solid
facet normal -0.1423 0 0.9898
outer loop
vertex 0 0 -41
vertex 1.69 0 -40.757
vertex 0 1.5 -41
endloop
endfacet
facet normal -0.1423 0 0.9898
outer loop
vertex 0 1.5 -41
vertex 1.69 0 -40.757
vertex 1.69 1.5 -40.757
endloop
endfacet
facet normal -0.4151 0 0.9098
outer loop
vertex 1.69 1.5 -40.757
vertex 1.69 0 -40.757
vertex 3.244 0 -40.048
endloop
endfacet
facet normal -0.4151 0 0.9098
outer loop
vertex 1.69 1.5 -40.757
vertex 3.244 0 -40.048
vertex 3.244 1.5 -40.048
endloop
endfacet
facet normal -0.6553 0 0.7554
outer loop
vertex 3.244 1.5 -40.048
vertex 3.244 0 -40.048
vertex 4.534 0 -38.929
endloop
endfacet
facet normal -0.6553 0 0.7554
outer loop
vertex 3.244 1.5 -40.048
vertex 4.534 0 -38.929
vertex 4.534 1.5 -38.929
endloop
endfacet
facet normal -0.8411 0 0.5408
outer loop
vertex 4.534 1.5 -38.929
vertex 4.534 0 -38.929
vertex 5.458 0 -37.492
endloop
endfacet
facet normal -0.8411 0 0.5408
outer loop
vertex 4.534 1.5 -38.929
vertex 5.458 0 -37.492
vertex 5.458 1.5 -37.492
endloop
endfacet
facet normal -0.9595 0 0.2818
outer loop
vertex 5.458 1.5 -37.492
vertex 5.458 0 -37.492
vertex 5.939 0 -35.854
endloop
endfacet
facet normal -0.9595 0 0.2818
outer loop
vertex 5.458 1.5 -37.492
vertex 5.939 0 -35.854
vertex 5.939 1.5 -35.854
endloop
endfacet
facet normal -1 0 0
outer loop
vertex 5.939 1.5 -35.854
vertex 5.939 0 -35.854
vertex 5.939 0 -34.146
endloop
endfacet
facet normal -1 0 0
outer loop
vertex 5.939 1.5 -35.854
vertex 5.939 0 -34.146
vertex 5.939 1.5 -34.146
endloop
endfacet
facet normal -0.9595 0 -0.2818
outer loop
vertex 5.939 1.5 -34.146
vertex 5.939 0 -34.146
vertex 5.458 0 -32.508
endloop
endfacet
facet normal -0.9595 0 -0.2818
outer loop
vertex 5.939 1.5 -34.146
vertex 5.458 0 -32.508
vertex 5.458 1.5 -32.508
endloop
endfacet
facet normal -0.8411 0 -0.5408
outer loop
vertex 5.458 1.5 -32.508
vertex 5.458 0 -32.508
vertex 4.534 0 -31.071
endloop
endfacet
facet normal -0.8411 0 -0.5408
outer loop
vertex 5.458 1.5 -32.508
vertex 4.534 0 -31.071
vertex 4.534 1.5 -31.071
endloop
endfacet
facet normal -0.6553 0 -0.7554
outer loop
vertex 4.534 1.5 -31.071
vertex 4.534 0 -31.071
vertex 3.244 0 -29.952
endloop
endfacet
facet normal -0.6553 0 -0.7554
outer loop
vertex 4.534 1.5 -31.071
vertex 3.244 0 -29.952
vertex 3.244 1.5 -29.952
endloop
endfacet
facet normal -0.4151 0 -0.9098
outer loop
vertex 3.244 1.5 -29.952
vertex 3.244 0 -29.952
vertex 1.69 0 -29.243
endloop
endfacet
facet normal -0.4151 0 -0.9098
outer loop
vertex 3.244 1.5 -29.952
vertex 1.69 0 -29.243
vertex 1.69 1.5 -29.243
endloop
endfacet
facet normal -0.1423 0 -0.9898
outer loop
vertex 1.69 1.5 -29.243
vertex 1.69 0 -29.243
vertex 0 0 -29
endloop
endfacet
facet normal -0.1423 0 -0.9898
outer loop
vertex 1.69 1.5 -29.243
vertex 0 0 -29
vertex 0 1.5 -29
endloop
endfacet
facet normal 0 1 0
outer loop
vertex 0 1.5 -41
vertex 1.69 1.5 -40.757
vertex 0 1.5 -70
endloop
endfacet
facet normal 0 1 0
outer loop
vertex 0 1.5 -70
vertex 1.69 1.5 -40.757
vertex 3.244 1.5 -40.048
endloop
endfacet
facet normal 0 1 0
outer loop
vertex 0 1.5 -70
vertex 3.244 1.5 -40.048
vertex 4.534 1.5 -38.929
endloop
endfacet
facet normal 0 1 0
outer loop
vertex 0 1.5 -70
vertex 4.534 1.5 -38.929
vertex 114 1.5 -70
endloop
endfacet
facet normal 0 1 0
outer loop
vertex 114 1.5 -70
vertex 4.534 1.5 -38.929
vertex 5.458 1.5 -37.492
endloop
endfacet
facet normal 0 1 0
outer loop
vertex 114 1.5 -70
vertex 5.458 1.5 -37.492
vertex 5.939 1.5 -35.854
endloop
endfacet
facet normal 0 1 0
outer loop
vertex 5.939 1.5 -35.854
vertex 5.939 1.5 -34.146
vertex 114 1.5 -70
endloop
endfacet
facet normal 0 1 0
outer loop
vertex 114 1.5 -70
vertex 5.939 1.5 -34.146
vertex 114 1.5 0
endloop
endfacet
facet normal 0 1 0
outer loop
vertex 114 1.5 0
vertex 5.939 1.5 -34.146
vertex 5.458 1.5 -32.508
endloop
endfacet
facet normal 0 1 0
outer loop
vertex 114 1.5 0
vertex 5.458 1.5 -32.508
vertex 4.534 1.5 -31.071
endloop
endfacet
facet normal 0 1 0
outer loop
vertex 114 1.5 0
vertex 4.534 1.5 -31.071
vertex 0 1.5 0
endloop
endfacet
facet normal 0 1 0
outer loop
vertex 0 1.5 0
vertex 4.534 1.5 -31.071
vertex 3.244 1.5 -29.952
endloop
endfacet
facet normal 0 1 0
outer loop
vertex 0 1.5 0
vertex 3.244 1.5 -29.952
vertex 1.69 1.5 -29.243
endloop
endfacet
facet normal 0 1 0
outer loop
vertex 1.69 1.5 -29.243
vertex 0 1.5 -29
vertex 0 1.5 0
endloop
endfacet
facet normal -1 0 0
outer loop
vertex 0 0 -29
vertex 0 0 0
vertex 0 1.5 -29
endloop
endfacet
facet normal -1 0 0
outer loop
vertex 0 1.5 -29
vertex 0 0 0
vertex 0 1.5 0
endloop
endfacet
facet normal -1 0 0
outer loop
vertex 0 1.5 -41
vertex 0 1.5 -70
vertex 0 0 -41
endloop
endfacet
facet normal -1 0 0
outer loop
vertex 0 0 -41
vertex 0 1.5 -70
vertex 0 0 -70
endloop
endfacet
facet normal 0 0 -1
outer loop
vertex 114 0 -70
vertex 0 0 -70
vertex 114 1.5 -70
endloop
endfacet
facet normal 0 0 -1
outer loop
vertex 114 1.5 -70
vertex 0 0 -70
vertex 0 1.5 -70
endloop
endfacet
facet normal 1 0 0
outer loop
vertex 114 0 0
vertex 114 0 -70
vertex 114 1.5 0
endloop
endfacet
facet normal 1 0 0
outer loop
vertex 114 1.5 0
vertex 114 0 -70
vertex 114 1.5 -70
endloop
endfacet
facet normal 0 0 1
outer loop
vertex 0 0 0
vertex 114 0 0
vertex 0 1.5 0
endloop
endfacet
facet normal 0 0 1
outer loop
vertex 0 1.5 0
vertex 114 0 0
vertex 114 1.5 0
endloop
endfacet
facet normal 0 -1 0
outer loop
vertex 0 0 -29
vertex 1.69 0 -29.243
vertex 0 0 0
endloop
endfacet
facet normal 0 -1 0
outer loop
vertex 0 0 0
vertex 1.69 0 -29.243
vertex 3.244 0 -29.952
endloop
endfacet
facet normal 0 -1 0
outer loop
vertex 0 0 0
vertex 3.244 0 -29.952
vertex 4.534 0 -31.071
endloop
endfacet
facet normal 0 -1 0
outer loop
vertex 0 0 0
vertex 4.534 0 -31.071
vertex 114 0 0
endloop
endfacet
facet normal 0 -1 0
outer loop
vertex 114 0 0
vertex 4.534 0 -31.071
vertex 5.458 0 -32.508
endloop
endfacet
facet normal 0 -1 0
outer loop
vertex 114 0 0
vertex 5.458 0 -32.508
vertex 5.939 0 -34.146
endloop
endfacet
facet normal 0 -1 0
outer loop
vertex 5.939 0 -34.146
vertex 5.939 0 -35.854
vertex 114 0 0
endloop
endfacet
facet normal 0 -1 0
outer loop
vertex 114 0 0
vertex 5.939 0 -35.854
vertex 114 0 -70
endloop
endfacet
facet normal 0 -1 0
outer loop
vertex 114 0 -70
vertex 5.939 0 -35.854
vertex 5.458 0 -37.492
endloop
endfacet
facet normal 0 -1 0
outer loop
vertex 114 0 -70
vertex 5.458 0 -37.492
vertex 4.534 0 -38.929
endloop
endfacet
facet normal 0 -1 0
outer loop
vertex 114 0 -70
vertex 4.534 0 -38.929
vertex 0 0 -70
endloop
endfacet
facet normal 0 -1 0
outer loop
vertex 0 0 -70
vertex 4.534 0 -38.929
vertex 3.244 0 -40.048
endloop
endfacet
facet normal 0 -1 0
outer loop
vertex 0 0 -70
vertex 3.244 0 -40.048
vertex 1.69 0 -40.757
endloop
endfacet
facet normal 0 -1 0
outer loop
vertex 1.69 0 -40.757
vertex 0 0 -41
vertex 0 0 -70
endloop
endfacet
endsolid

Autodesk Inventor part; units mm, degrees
ref_plane "YZ Plane" through (0, 0, 0) normal (1, 0, 0) x (0, 1, 0)
ref_plane "XZ Plane" through (0, 0, 0) normal (0, 1, 0) x (-1, 0, 0)
ref_plane "XY Plane" through (0, 0, 0) normal (0, 0, 1) x (1, 0, 0)
sketch "スケッチ1" plane through (0, 0, 0) normal (0, 1, 0) x (-1, 0, 0)
  line L0 (0, 0) -> (-114, 0)
  line L1 (-114, 0) -> (-114, -70)
  line L2 (-114, -70) -> (0, -70)
  line L3 (0, -70) -> (0, 0)
  dimension "d0" = 114
  dimension "d1" = 70
extrude "押し出し1" add sketch "スケッチ1" along normal blind 1.5
sketch "スケッチ2" plane through (0, 1.5, 0) normal (0, 1, 0) x (1, 0, 0)
  line L0 (0, 70) -> (0, 0) projected
  circle A0 centre (0, 35) radius 6
  dimension "d4" = 12
extrude "押し出し2" cut sketch "スケッチ2" against normal blind 3
properties part number "COVER_revised"
